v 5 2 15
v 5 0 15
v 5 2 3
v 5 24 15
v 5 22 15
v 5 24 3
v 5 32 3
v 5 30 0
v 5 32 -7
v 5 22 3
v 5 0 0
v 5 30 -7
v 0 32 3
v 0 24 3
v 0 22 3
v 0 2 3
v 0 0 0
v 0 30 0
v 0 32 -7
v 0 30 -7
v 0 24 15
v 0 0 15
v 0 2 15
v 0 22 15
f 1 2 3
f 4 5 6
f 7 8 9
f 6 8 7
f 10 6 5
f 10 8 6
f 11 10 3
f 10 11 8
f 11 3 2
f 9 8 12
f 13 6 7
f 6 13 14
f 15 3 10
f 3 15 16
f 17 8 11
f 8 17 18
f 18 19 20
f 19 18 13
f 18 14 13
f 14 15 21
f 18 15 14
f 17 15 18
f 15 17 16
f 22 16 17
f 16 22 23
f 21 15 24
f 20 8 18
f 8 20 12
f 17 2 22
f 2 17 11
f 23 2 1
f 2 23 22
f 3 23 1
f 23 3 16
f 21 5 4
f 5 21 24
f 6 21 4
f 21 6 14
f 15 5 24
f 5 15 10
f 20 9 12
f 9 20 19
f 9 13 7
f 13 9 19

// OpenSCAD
thickness = 3;
width = 5;
length = 30;

cube([width, length, thickness]);

wallThickness = 2;
cube([width, wallThickness, 15]);
translate([0, 20+wallThickness, 0])
	cube([width, wallThickness, 15]);

endHeight = 10;
translate([0, length, -endHeight+thickness])
	cube([width, wallThickness, endHeight]);
